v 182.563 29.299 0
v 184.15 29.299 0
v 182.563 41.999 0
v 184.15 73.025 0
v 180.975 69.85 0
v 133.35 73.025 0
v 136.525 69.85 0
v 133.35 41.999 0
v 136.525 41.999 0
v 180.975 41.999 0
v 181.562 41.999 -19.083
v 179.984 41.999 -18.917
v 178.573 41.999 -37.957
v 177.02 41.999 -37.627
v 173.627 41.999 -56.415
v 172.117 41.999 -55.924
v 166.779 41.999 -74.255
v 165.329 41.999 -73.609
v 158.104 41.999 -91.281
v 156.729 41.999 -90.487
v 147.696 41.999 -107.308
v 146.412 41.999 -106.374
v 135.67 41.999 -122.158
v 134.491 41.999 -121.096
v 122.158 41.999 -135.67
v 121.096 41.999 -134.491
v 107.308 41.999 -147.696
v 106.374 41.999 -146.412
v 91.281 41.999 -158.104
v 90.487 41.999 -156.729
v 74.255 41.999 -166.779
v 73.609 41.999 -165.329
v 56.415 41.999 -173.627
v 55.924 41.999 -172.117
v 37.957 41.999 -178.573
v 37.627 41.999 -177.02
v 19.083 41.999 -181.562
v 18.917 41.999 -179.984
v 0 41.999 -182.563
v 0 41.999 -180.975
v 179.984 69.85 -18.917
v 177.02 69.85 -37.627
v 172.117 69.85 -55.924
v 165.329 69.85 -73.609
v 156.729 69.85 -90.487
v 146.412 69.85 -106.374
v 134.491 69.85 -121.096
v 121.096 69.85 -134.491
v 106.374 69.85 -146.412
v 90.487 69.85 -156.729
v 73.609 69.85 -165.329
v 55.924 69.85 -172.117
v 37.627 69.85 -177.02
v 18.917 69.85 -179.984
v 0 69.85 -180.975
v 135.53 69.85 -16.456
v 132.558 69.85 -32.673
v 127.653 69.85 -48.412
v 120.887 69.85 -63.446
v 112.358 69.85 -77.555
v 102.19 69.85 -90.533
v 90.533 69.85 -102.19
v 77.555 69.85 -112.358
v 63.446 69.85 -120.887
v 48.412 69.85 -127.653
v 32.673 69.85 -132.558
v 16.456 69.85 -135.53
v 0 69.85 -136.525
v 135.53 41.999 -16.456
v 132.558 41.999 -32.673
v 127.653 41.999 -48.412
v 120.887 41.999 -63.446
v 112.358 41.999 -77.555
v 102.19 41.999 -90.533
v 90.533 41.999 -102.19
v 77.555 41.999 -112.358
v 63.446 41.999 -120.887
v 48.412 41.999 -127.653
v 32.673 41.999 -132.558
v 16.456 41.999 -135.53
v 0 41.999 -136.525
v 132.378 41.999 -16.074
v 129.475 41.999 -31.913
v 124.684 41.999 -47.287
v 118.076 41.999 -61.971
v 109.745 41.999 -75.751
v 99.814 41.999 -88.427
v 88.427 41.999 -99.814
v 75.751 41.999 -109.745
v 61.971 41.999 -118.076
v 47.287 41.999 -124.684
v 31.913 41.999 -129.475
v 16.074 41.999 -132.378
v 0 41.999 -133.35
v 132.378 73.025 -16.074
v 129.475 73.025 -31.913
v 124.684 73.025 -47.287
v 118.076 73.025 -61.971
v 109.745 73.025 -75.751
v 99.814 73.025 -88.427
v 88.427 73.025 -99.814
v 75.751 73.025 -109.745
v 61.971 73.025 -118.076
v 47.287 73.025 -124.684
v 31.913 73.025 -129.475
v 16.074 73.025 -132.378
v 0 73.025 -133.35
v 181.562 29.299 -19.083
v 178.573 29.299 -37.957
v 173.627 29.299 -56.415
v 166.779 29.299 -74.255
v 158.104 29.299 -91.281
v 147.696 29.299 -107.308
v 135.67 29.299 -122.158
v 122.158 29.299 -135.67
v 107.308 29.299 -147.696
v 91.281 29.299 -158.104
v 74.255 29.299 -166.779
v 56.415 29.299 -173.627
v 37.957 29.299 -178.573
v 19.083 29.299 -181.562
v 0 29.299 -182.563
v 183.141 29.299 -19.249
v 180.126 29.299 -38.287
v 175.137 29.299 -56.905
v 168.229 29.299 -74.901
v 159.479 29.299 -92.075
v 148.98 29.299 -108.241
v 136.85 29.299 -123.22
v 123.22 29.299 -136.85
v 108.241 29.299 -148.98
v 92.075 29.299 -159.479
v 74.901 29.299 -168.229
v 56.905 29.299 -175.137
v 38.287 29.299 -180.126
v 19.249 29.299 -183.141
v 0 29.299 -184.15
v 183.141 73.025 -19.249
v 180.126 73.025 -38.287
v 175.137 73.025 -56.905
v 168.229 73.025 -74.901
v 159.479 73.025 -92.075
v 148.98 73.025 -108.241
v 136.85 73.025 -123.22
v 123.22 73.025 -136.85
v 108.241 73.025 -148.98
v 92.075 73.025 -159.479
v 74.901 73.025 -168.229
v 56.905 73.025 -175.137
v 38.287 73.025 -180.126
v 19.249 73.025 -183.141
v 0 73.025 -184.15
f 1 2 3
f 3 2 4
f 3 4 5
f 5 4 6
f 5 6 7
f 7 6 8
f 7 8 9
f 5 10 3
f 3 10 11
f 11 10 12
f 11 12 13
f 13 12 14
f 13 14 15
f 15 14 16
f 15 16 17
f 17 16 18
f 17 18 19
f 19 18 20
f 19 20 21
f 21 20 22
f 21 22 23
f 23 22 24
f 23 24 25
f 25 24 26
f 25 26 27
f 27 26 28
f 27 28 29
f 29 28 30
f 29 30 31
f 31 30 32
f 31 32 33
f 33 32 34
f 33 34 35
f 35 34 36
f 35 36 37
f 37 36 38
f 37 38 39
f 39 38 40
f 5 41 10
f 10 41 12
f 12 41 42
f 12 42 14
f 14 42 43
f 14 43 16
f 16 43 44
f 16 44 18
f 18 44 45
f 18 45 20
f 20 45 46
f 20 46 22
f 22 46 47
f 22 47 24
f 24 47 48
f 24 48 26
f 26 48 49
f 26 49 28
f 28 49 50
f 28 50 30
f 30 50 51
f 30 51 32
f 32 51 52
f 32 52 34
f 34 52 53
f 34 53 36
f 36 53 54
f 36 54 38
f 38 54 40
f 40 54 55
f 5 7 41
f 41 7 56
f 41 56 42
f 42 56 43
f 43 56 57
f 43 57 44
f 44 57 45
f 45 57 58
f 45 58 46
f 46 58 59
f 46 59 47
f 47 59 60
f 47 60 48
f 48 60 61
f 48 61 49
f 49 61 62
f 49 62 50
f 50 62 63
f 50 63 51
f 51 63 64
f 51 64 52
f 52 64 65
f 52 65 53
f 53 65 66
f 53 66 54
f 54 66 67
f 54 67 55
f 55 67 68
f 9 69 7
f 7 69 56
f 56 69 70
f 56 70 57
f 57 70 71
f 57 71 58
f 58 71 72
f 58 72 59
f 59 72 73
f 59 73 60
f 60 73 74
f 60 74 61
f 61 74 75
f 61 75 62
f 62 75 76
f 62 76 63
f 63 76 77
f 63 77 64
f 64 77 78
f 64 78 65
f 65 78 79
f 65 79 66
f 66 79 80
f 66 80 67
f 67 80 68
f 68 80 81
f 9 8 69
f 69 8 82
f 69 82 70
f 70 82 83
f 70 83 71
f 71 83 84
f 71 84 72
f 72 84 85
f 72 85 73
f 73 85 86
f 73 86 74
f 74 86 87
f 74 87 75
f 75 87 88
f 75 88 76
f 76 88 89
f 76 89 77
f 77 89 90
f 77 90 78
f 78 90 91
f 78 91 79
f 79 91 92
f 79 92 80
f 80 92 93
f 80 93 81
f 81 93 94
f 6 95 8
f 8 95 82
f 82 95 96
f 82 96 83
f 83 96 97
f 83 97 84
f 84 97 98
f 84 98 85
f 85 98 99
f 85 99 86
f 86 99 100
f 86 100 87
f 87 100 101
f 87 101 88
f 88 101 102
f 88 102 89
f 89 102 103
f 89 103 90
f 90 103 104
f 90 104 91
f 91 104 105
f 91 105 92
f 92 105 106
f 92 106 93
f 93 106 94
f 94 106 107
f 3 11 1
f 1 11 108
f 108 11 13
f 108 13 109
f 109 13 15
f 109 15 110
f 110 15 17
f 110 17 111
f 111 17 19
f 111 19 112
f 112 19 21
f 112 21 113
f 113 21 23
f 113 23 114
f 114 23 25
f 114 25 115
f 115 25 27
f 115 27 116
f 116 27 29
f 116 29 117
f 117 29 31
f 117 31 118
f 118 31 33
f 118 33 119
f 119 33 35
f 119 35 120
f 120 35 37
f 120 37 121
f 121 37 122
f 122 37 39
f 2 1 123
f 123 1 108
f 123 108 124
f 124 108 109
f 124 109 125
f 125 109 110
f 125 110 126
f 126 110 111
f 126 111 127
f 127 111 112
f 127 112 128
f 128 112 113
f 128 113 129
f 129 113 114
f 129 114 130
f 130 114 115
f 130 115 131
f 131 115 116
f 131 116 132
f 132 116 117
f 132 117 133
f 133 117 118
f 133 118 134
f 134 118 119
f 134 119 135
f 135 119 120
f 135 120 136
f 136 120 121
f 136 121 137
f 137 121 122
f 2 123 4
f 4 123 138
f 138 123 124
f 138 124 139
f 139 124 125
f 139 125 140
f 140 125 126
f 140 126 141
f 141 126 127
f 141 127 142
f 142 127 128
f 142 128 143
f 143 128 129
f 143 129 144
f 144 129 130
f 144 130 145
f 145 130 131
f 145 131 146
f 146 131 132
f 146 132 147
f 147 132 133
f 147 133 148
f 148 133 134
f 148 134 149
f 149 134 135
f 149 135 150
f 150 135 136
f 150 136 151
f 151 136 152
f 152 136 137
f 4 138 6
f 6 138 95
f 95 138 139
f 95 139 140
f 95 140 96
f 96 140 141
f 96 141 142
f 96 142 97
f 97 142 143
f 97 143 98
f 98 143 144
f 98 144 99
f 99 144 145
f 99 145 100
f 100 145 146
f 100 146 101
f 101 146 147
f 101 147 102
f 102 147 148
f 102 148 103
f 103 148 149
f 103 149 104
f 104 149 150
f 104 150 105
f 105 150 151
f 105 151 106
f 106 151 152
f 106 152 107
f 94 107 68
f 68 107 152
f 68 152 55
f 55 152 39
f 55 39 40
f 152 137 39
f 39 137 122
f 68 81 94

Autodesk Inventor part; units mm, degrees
ref_plane "YZ Plane" through (0, 0, 0) normal (1, 0, 0) x (0, 1, 0)
ref_plane "XZ Plane" through (0, 0, 0) normal (0, 1, 0) x (-1, 0, 0)
ref_plane "XY Plane" through (0, 0, 0) normal (0, 0, 1) x (1, 0, 0)
sketch "Sketch1" plane through (0, 0, 0) normal (1, 0, 0) x (0, 1, 0)
  line L0 (0, 0) -> (50.8, 0)
  line L1 (0, 133.35) -> (0, 184.15)
  line L2 (29.2989, 184.15) -> (73.025, 184.15)
  line L3 (73.025, 184.15) -> (73.025, 133.35)
  line L4 (69.85, 180.975) -> (41.9989, 180.975)
  line L5 (3.175, 180.975) -> (3.175, 136.525)
  line L6 (69.85, 136.525) -> (69.85, 180.975)
  line L7 (29.2989, 148.3694) -> (29.2989, 120.4477)
  line L8 (41.9989, 148.9666) -> (41.9989, 122.6874)
  line L9 (0, 133.35) -> (29.2989, 133.35)
  line L10 (41.9989, 133.35) -> (73.025, 133.35)
  line L11 (3.175, 136.525) -> (29.2989, 136.525)
  line L12 (41.9989, 136.525) -> (69.85, 136.525)
  line L13 (35.6489, 182.5625) -> (29.2989, 182.5625)
  line L14 (29.2989, 182.5625) -> (29.2989, 184.15)
  line L15 (35.6489, 182.5625) -> (41.9989, 182.5625)
  line L16 (41.9989, 182.5625) -> (41.9989, 180.975)
  line L17 (35.6489, 170.4093) -> (35.6489, 182.5625)
  line L18 (35.6489, 184.15) -> (35.6489, 196.0777)
  point P0 (3.175, 180.975)
  point P1 (69.85, 136.525)
  dimension "d0" = 50.8
  dimension "d3" = 50.8
  dimension "d4" = 73.025
  dimension "d5" = 3.175
  dimension "d6" = 3.175
  dimension "d7" = 3.175
  dimension "d8" = 3.175
  dimension "d9" = 3.175
  dimension "d11" = 3.175
  dimension "d13" = 26.1239
  dimension "d14" = 12.7
  dimension "d16" = 133.35
  dimension "d17" = 3.175
  dimension "d18" = 3.175
  dimension "d19" = 6.35
  dimension "d20" = 1.5875
  dimension "d21" = 6.35
  dimension "d22" = 6.35
revolve "Revolution1" add sketch "Sketch1" angle 180 about axis through (0, 0, 0) along (0, 1, 0)
sketch "Sketch2" plane through (0, 73.025, 184.15) normal (0, 1, 0) x (1, 0, 0)
  line L0 (0, 184.15) -> (255.0466, 184.15)
  line L1 (255.0466, 184.15) -> (255.0466, -9.3169)
  line L2 (255.0466, -9.3169) -> (0, -9.3169)
  line L3 (0, -9.3169) -> (0, 184.15)
extrude "Extrusion1" cut sketch "Sketch2" against normal through all
properties part number "Outer_Shell_Top_Quarter"
